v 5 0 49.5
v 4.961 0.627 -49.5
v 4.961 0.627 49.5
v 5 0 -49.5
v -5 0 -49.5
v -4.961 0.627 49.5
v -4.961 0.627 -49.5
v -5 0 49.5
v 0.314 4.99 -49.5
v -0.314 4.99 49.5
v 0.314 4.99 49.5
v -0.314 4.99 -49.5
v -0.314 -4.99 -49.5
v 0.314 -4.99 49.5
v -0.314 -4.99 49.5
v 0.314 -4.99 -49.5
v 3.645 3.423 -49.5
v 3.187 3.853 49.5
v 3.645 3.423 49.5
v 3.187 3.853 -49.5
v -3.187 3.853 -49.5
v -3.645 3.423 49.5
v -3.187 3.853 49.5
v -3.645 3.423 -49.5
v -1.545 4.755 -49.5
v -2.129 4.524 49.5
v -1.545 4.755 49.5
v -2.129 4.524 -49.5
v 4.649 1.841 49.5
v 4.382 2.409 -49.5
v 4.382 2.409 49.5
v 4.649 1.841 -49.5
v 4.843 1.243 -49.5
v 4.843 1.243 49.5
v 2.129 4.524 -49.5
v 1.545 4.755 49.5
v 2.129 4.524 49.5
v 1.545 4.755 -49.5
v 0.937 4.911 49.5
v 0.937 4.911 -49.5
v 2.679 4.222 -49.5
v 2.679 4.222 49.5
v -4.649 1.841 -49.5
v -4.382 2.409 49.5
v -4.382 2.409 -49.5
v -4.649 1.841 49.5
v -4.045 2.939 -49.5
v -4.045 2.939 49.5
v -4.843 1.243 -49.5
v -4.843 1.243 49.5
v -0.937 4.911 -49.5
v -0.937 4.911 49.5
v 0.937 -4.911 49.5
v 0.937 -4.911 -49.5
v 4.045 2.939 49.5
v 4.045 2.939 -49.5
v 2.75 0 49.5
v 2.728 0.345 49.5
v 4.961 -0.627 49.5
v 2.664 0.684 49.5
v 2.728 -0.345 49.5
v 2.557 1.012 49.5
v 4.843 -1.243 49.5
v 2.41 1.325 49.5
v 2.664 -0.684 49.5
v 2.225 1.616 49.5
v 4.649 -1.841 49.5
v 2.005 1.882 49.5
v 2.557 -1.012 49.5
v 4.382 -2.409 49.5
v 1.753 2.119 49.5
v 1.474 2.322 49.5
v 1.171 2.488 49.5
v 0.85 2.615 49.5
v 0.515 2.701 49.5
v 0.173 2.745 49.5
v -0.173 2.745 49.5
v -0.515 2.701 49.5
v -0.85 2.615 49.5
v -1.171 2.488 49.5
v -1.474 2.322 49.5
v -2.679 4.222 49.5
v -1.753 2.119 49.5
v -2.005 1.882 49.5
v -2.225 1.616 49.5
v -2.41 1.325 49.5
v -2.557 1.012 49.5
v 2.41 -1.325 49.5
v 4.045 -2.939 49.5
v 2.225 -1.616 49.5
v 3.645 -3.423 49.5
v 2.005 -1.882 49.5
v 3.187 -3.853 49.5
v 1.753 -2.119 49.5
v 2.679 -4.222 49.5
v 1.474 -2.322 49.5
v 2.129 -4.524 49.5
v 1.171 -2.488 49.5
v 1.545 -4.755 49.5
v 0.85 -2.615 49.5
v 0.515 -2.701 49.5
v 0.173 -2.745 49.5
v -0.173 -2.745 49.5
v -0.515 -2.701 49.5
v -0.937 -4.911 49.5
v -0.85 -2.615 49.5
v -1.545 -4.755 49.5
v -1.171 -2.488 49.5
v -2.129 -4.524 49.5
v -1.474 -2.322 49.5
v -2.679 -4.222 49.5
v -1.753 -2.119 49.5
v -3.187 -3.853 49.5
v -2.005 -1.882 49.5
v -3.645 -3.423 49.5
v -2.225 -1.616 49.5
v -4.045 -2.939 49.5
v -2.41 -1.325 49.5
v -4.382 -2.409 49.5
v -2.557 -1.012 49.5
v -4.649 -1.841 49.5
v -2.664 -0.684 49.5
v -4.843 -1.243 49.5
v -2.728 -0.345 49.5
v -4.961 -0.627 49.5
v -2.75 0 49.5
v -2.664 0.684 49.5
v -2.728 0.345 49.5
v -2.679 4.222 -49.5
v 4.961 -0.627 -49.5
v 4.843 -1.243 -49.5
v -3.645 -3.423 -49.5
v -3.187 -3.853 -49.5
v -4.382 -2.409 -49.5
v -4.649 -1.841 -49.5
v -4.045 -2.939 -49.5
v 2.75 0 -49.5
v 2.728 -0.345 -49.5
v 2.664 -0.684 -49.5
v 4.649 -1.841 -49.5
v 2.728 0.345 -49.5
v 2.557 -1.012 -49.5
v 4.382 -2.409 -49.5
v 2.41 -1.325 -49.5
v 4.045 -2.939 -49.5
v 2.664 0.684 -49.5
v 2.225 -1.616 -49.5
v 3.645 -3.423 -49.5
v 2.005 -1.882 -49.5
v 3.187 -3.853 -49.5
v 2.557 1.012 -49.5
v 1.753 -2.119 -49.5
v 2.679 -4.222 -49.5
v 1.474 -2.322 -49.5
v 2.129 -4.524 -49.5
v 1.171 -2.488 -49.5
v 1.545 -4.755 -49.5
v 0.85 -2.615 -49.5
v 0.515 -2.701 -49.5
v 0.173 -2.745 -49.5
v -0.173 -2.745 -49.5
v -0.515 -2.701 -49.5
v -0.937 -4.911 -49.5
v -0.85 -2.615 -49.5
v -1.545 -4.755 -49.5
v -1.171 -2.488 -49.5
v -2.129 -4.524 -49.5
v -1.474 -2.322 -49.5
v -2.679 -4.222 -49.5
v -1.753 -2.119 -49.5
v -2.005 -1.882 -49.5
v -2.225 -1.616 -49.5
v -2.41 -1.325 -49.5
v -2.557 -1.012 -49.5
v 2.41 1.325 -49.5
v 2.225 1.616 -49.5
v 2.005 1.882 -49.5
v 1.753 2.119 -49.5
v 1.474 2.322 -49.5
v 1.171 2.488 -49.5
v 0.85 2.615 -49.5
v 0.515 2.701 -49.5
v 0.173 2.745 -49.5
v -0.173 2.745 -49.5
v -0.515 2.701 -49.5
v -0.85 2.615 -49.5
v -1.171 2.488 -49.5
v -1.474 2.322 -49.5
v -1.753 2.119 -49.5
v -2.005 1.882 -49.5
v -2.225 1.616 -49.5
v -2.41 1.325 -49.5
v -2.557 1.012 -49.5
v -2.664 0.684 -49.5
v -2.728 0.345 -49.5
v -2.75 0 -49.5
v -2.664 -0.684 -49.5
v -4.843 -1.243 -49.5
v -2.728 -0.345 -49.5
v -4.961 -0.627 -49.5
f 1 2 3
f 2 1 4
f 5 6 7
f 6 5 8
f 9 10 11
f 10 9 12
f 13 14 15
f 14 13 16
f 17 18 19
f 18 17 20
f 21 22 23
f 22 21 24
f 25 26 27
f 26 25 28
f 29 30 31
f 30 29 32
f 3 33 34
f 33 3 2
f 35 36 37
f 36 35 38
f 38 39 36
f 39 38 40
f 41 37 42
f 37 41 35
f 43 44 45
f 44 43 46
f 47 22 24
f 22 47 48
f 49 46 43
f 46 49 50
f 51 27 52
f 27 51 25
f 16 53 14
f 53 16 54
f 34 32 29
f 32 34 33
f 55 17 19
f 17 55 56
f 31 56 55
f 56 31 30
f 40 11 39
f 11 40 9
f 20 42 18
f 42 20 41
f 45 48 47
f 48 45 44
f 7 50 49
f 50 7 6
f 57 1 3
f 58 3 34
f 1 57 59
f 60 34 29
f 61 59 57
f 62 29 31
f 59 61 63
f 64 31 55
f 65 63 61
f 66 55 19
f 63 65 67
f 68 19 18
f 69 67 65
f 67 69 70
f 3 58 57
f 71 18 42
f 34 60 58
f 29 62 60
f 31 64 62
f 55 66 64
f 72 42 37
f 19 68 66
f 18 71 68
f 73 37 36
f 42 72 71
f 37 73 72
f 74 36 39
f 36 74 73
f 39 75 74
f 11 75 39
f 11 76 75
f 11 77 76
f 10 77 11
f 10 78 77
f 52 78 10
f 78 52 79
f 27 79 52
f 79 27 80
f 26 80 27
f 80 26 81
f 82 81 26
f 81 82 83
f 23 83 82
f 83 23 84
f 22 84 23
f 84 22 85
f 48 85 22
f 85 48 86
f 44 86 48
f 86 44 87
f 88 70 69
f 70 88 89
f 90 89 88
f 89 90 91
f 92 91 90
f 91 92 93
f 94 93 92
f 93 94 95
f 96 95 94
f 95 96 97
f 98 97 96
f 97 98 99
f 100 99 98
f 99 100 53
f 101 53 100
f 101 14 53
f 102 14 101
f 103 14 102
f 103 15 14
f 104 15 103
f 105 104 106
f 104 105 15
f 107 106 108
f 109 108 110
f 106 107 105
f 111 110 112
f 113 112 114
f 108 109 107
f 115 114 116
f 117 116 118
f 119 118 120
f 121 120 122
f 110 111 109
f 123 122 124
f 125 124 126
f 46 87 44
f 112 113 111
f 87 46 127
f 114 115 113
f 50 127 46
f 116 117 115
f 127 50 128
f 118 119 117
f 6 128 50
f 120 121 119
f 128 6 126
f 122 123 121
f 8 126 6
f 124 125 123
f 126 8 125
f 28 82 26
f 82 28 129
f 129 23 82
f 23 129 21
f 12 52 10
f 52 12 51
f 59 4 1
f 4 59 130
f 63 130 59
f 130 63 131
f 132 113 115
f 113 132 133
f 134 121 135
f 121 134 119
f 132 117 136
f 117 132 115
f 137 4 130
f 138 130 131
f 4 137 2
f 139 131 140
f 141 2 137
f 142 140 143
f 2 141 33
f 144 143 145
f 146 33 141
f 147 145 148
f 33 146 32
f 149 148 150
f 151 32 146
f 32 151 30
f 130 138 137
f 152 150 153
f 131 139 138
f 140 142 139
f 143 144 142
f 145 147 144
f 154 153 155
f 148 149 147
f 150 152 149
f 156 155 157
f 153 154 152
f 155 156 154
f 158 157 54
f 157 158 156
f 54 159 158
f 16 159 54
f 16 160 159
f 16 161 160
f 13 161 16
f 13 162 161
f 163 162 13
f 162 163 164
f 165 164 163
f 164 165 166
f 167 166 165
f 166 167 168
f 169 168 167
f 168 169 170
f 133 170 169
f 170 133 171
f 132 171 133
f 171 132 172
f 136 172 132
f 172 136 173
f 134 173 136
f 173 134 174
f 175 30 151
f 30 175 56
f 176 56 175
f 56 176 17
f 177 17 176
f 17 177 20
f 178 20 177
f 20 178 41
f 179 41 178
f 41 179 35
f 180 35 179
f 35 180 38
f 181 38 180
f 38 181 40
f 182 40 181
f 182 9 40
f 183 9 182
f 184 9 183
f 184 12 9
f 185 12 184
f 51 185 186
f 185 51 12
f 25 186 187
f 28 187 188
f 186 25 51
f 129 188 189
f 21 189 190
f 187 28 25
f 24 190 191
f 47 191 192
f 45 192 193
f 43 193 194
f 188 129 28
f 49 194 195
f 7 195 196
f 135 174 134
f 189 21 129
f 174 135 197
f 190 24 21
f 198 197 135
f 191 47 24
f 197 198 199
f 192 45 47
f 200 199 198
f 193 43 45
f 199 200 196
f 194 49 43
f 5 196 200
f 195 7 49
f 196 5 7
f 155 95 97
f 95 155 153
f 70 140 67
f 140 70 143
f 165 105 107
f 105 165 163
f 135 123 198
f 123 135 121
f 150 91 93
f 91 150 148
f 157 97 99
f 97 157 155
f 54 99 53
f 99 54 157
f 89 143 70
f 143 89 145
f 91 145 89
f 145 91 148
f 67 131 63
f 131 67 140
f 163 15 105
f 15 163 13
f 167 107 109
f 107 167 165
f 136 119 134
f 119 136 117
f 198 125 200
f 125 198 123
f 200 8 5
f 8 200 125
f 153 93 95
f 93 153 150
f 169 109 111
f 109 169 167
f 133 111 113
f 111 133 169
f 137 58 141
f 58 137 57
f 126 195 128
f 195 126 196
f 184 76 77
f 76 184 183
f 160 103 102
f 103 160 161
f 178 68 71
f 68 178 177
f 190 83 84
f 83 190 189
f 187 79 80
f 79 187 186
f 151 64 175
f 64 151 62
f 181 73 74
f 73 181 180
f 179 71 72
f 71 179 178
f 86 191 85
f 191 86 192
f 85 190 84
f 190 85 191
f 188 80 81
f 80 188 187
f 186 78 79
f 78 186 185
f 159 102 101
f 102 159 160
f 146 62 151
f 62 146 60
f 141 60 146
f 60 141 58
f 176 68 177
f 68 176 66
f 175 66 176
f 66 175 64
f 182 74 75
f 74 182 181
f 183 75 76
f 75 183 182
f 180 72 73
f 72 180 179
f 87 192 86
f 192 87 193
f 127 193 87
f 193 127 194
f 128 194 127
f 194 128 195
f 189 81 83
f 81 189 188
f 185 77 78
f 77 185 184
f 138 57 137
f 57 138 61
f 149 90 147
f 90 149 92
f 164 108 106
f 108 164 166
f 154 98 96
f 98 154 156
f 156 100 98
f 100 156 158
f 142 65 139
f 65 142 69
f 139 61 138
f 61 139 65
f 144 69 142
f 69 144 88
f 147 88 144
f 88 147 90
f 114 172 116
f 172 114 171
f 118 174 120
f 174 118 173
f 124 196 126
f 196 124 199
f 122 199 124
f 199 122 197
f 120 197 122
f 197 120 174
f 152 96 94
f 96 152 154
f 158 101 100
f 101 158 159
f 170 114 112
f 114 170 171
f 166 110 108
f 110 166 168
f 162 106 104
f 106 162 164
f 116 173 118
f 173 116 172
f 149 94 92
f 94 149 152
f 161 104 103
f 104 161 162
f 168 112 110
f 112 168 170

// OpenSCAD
$fn = 50;


difference() {
	union() {
		translate(v = [0, 0, -49.5000000000]) {
			cylinder(h = 99, r = 5.0000000000);
		}
	}
	union() {
		translate(v = [0, 0, -100.0000000000]) {
			cylinder(h = 200, r = 2.7500000000);
		}
	}
}
